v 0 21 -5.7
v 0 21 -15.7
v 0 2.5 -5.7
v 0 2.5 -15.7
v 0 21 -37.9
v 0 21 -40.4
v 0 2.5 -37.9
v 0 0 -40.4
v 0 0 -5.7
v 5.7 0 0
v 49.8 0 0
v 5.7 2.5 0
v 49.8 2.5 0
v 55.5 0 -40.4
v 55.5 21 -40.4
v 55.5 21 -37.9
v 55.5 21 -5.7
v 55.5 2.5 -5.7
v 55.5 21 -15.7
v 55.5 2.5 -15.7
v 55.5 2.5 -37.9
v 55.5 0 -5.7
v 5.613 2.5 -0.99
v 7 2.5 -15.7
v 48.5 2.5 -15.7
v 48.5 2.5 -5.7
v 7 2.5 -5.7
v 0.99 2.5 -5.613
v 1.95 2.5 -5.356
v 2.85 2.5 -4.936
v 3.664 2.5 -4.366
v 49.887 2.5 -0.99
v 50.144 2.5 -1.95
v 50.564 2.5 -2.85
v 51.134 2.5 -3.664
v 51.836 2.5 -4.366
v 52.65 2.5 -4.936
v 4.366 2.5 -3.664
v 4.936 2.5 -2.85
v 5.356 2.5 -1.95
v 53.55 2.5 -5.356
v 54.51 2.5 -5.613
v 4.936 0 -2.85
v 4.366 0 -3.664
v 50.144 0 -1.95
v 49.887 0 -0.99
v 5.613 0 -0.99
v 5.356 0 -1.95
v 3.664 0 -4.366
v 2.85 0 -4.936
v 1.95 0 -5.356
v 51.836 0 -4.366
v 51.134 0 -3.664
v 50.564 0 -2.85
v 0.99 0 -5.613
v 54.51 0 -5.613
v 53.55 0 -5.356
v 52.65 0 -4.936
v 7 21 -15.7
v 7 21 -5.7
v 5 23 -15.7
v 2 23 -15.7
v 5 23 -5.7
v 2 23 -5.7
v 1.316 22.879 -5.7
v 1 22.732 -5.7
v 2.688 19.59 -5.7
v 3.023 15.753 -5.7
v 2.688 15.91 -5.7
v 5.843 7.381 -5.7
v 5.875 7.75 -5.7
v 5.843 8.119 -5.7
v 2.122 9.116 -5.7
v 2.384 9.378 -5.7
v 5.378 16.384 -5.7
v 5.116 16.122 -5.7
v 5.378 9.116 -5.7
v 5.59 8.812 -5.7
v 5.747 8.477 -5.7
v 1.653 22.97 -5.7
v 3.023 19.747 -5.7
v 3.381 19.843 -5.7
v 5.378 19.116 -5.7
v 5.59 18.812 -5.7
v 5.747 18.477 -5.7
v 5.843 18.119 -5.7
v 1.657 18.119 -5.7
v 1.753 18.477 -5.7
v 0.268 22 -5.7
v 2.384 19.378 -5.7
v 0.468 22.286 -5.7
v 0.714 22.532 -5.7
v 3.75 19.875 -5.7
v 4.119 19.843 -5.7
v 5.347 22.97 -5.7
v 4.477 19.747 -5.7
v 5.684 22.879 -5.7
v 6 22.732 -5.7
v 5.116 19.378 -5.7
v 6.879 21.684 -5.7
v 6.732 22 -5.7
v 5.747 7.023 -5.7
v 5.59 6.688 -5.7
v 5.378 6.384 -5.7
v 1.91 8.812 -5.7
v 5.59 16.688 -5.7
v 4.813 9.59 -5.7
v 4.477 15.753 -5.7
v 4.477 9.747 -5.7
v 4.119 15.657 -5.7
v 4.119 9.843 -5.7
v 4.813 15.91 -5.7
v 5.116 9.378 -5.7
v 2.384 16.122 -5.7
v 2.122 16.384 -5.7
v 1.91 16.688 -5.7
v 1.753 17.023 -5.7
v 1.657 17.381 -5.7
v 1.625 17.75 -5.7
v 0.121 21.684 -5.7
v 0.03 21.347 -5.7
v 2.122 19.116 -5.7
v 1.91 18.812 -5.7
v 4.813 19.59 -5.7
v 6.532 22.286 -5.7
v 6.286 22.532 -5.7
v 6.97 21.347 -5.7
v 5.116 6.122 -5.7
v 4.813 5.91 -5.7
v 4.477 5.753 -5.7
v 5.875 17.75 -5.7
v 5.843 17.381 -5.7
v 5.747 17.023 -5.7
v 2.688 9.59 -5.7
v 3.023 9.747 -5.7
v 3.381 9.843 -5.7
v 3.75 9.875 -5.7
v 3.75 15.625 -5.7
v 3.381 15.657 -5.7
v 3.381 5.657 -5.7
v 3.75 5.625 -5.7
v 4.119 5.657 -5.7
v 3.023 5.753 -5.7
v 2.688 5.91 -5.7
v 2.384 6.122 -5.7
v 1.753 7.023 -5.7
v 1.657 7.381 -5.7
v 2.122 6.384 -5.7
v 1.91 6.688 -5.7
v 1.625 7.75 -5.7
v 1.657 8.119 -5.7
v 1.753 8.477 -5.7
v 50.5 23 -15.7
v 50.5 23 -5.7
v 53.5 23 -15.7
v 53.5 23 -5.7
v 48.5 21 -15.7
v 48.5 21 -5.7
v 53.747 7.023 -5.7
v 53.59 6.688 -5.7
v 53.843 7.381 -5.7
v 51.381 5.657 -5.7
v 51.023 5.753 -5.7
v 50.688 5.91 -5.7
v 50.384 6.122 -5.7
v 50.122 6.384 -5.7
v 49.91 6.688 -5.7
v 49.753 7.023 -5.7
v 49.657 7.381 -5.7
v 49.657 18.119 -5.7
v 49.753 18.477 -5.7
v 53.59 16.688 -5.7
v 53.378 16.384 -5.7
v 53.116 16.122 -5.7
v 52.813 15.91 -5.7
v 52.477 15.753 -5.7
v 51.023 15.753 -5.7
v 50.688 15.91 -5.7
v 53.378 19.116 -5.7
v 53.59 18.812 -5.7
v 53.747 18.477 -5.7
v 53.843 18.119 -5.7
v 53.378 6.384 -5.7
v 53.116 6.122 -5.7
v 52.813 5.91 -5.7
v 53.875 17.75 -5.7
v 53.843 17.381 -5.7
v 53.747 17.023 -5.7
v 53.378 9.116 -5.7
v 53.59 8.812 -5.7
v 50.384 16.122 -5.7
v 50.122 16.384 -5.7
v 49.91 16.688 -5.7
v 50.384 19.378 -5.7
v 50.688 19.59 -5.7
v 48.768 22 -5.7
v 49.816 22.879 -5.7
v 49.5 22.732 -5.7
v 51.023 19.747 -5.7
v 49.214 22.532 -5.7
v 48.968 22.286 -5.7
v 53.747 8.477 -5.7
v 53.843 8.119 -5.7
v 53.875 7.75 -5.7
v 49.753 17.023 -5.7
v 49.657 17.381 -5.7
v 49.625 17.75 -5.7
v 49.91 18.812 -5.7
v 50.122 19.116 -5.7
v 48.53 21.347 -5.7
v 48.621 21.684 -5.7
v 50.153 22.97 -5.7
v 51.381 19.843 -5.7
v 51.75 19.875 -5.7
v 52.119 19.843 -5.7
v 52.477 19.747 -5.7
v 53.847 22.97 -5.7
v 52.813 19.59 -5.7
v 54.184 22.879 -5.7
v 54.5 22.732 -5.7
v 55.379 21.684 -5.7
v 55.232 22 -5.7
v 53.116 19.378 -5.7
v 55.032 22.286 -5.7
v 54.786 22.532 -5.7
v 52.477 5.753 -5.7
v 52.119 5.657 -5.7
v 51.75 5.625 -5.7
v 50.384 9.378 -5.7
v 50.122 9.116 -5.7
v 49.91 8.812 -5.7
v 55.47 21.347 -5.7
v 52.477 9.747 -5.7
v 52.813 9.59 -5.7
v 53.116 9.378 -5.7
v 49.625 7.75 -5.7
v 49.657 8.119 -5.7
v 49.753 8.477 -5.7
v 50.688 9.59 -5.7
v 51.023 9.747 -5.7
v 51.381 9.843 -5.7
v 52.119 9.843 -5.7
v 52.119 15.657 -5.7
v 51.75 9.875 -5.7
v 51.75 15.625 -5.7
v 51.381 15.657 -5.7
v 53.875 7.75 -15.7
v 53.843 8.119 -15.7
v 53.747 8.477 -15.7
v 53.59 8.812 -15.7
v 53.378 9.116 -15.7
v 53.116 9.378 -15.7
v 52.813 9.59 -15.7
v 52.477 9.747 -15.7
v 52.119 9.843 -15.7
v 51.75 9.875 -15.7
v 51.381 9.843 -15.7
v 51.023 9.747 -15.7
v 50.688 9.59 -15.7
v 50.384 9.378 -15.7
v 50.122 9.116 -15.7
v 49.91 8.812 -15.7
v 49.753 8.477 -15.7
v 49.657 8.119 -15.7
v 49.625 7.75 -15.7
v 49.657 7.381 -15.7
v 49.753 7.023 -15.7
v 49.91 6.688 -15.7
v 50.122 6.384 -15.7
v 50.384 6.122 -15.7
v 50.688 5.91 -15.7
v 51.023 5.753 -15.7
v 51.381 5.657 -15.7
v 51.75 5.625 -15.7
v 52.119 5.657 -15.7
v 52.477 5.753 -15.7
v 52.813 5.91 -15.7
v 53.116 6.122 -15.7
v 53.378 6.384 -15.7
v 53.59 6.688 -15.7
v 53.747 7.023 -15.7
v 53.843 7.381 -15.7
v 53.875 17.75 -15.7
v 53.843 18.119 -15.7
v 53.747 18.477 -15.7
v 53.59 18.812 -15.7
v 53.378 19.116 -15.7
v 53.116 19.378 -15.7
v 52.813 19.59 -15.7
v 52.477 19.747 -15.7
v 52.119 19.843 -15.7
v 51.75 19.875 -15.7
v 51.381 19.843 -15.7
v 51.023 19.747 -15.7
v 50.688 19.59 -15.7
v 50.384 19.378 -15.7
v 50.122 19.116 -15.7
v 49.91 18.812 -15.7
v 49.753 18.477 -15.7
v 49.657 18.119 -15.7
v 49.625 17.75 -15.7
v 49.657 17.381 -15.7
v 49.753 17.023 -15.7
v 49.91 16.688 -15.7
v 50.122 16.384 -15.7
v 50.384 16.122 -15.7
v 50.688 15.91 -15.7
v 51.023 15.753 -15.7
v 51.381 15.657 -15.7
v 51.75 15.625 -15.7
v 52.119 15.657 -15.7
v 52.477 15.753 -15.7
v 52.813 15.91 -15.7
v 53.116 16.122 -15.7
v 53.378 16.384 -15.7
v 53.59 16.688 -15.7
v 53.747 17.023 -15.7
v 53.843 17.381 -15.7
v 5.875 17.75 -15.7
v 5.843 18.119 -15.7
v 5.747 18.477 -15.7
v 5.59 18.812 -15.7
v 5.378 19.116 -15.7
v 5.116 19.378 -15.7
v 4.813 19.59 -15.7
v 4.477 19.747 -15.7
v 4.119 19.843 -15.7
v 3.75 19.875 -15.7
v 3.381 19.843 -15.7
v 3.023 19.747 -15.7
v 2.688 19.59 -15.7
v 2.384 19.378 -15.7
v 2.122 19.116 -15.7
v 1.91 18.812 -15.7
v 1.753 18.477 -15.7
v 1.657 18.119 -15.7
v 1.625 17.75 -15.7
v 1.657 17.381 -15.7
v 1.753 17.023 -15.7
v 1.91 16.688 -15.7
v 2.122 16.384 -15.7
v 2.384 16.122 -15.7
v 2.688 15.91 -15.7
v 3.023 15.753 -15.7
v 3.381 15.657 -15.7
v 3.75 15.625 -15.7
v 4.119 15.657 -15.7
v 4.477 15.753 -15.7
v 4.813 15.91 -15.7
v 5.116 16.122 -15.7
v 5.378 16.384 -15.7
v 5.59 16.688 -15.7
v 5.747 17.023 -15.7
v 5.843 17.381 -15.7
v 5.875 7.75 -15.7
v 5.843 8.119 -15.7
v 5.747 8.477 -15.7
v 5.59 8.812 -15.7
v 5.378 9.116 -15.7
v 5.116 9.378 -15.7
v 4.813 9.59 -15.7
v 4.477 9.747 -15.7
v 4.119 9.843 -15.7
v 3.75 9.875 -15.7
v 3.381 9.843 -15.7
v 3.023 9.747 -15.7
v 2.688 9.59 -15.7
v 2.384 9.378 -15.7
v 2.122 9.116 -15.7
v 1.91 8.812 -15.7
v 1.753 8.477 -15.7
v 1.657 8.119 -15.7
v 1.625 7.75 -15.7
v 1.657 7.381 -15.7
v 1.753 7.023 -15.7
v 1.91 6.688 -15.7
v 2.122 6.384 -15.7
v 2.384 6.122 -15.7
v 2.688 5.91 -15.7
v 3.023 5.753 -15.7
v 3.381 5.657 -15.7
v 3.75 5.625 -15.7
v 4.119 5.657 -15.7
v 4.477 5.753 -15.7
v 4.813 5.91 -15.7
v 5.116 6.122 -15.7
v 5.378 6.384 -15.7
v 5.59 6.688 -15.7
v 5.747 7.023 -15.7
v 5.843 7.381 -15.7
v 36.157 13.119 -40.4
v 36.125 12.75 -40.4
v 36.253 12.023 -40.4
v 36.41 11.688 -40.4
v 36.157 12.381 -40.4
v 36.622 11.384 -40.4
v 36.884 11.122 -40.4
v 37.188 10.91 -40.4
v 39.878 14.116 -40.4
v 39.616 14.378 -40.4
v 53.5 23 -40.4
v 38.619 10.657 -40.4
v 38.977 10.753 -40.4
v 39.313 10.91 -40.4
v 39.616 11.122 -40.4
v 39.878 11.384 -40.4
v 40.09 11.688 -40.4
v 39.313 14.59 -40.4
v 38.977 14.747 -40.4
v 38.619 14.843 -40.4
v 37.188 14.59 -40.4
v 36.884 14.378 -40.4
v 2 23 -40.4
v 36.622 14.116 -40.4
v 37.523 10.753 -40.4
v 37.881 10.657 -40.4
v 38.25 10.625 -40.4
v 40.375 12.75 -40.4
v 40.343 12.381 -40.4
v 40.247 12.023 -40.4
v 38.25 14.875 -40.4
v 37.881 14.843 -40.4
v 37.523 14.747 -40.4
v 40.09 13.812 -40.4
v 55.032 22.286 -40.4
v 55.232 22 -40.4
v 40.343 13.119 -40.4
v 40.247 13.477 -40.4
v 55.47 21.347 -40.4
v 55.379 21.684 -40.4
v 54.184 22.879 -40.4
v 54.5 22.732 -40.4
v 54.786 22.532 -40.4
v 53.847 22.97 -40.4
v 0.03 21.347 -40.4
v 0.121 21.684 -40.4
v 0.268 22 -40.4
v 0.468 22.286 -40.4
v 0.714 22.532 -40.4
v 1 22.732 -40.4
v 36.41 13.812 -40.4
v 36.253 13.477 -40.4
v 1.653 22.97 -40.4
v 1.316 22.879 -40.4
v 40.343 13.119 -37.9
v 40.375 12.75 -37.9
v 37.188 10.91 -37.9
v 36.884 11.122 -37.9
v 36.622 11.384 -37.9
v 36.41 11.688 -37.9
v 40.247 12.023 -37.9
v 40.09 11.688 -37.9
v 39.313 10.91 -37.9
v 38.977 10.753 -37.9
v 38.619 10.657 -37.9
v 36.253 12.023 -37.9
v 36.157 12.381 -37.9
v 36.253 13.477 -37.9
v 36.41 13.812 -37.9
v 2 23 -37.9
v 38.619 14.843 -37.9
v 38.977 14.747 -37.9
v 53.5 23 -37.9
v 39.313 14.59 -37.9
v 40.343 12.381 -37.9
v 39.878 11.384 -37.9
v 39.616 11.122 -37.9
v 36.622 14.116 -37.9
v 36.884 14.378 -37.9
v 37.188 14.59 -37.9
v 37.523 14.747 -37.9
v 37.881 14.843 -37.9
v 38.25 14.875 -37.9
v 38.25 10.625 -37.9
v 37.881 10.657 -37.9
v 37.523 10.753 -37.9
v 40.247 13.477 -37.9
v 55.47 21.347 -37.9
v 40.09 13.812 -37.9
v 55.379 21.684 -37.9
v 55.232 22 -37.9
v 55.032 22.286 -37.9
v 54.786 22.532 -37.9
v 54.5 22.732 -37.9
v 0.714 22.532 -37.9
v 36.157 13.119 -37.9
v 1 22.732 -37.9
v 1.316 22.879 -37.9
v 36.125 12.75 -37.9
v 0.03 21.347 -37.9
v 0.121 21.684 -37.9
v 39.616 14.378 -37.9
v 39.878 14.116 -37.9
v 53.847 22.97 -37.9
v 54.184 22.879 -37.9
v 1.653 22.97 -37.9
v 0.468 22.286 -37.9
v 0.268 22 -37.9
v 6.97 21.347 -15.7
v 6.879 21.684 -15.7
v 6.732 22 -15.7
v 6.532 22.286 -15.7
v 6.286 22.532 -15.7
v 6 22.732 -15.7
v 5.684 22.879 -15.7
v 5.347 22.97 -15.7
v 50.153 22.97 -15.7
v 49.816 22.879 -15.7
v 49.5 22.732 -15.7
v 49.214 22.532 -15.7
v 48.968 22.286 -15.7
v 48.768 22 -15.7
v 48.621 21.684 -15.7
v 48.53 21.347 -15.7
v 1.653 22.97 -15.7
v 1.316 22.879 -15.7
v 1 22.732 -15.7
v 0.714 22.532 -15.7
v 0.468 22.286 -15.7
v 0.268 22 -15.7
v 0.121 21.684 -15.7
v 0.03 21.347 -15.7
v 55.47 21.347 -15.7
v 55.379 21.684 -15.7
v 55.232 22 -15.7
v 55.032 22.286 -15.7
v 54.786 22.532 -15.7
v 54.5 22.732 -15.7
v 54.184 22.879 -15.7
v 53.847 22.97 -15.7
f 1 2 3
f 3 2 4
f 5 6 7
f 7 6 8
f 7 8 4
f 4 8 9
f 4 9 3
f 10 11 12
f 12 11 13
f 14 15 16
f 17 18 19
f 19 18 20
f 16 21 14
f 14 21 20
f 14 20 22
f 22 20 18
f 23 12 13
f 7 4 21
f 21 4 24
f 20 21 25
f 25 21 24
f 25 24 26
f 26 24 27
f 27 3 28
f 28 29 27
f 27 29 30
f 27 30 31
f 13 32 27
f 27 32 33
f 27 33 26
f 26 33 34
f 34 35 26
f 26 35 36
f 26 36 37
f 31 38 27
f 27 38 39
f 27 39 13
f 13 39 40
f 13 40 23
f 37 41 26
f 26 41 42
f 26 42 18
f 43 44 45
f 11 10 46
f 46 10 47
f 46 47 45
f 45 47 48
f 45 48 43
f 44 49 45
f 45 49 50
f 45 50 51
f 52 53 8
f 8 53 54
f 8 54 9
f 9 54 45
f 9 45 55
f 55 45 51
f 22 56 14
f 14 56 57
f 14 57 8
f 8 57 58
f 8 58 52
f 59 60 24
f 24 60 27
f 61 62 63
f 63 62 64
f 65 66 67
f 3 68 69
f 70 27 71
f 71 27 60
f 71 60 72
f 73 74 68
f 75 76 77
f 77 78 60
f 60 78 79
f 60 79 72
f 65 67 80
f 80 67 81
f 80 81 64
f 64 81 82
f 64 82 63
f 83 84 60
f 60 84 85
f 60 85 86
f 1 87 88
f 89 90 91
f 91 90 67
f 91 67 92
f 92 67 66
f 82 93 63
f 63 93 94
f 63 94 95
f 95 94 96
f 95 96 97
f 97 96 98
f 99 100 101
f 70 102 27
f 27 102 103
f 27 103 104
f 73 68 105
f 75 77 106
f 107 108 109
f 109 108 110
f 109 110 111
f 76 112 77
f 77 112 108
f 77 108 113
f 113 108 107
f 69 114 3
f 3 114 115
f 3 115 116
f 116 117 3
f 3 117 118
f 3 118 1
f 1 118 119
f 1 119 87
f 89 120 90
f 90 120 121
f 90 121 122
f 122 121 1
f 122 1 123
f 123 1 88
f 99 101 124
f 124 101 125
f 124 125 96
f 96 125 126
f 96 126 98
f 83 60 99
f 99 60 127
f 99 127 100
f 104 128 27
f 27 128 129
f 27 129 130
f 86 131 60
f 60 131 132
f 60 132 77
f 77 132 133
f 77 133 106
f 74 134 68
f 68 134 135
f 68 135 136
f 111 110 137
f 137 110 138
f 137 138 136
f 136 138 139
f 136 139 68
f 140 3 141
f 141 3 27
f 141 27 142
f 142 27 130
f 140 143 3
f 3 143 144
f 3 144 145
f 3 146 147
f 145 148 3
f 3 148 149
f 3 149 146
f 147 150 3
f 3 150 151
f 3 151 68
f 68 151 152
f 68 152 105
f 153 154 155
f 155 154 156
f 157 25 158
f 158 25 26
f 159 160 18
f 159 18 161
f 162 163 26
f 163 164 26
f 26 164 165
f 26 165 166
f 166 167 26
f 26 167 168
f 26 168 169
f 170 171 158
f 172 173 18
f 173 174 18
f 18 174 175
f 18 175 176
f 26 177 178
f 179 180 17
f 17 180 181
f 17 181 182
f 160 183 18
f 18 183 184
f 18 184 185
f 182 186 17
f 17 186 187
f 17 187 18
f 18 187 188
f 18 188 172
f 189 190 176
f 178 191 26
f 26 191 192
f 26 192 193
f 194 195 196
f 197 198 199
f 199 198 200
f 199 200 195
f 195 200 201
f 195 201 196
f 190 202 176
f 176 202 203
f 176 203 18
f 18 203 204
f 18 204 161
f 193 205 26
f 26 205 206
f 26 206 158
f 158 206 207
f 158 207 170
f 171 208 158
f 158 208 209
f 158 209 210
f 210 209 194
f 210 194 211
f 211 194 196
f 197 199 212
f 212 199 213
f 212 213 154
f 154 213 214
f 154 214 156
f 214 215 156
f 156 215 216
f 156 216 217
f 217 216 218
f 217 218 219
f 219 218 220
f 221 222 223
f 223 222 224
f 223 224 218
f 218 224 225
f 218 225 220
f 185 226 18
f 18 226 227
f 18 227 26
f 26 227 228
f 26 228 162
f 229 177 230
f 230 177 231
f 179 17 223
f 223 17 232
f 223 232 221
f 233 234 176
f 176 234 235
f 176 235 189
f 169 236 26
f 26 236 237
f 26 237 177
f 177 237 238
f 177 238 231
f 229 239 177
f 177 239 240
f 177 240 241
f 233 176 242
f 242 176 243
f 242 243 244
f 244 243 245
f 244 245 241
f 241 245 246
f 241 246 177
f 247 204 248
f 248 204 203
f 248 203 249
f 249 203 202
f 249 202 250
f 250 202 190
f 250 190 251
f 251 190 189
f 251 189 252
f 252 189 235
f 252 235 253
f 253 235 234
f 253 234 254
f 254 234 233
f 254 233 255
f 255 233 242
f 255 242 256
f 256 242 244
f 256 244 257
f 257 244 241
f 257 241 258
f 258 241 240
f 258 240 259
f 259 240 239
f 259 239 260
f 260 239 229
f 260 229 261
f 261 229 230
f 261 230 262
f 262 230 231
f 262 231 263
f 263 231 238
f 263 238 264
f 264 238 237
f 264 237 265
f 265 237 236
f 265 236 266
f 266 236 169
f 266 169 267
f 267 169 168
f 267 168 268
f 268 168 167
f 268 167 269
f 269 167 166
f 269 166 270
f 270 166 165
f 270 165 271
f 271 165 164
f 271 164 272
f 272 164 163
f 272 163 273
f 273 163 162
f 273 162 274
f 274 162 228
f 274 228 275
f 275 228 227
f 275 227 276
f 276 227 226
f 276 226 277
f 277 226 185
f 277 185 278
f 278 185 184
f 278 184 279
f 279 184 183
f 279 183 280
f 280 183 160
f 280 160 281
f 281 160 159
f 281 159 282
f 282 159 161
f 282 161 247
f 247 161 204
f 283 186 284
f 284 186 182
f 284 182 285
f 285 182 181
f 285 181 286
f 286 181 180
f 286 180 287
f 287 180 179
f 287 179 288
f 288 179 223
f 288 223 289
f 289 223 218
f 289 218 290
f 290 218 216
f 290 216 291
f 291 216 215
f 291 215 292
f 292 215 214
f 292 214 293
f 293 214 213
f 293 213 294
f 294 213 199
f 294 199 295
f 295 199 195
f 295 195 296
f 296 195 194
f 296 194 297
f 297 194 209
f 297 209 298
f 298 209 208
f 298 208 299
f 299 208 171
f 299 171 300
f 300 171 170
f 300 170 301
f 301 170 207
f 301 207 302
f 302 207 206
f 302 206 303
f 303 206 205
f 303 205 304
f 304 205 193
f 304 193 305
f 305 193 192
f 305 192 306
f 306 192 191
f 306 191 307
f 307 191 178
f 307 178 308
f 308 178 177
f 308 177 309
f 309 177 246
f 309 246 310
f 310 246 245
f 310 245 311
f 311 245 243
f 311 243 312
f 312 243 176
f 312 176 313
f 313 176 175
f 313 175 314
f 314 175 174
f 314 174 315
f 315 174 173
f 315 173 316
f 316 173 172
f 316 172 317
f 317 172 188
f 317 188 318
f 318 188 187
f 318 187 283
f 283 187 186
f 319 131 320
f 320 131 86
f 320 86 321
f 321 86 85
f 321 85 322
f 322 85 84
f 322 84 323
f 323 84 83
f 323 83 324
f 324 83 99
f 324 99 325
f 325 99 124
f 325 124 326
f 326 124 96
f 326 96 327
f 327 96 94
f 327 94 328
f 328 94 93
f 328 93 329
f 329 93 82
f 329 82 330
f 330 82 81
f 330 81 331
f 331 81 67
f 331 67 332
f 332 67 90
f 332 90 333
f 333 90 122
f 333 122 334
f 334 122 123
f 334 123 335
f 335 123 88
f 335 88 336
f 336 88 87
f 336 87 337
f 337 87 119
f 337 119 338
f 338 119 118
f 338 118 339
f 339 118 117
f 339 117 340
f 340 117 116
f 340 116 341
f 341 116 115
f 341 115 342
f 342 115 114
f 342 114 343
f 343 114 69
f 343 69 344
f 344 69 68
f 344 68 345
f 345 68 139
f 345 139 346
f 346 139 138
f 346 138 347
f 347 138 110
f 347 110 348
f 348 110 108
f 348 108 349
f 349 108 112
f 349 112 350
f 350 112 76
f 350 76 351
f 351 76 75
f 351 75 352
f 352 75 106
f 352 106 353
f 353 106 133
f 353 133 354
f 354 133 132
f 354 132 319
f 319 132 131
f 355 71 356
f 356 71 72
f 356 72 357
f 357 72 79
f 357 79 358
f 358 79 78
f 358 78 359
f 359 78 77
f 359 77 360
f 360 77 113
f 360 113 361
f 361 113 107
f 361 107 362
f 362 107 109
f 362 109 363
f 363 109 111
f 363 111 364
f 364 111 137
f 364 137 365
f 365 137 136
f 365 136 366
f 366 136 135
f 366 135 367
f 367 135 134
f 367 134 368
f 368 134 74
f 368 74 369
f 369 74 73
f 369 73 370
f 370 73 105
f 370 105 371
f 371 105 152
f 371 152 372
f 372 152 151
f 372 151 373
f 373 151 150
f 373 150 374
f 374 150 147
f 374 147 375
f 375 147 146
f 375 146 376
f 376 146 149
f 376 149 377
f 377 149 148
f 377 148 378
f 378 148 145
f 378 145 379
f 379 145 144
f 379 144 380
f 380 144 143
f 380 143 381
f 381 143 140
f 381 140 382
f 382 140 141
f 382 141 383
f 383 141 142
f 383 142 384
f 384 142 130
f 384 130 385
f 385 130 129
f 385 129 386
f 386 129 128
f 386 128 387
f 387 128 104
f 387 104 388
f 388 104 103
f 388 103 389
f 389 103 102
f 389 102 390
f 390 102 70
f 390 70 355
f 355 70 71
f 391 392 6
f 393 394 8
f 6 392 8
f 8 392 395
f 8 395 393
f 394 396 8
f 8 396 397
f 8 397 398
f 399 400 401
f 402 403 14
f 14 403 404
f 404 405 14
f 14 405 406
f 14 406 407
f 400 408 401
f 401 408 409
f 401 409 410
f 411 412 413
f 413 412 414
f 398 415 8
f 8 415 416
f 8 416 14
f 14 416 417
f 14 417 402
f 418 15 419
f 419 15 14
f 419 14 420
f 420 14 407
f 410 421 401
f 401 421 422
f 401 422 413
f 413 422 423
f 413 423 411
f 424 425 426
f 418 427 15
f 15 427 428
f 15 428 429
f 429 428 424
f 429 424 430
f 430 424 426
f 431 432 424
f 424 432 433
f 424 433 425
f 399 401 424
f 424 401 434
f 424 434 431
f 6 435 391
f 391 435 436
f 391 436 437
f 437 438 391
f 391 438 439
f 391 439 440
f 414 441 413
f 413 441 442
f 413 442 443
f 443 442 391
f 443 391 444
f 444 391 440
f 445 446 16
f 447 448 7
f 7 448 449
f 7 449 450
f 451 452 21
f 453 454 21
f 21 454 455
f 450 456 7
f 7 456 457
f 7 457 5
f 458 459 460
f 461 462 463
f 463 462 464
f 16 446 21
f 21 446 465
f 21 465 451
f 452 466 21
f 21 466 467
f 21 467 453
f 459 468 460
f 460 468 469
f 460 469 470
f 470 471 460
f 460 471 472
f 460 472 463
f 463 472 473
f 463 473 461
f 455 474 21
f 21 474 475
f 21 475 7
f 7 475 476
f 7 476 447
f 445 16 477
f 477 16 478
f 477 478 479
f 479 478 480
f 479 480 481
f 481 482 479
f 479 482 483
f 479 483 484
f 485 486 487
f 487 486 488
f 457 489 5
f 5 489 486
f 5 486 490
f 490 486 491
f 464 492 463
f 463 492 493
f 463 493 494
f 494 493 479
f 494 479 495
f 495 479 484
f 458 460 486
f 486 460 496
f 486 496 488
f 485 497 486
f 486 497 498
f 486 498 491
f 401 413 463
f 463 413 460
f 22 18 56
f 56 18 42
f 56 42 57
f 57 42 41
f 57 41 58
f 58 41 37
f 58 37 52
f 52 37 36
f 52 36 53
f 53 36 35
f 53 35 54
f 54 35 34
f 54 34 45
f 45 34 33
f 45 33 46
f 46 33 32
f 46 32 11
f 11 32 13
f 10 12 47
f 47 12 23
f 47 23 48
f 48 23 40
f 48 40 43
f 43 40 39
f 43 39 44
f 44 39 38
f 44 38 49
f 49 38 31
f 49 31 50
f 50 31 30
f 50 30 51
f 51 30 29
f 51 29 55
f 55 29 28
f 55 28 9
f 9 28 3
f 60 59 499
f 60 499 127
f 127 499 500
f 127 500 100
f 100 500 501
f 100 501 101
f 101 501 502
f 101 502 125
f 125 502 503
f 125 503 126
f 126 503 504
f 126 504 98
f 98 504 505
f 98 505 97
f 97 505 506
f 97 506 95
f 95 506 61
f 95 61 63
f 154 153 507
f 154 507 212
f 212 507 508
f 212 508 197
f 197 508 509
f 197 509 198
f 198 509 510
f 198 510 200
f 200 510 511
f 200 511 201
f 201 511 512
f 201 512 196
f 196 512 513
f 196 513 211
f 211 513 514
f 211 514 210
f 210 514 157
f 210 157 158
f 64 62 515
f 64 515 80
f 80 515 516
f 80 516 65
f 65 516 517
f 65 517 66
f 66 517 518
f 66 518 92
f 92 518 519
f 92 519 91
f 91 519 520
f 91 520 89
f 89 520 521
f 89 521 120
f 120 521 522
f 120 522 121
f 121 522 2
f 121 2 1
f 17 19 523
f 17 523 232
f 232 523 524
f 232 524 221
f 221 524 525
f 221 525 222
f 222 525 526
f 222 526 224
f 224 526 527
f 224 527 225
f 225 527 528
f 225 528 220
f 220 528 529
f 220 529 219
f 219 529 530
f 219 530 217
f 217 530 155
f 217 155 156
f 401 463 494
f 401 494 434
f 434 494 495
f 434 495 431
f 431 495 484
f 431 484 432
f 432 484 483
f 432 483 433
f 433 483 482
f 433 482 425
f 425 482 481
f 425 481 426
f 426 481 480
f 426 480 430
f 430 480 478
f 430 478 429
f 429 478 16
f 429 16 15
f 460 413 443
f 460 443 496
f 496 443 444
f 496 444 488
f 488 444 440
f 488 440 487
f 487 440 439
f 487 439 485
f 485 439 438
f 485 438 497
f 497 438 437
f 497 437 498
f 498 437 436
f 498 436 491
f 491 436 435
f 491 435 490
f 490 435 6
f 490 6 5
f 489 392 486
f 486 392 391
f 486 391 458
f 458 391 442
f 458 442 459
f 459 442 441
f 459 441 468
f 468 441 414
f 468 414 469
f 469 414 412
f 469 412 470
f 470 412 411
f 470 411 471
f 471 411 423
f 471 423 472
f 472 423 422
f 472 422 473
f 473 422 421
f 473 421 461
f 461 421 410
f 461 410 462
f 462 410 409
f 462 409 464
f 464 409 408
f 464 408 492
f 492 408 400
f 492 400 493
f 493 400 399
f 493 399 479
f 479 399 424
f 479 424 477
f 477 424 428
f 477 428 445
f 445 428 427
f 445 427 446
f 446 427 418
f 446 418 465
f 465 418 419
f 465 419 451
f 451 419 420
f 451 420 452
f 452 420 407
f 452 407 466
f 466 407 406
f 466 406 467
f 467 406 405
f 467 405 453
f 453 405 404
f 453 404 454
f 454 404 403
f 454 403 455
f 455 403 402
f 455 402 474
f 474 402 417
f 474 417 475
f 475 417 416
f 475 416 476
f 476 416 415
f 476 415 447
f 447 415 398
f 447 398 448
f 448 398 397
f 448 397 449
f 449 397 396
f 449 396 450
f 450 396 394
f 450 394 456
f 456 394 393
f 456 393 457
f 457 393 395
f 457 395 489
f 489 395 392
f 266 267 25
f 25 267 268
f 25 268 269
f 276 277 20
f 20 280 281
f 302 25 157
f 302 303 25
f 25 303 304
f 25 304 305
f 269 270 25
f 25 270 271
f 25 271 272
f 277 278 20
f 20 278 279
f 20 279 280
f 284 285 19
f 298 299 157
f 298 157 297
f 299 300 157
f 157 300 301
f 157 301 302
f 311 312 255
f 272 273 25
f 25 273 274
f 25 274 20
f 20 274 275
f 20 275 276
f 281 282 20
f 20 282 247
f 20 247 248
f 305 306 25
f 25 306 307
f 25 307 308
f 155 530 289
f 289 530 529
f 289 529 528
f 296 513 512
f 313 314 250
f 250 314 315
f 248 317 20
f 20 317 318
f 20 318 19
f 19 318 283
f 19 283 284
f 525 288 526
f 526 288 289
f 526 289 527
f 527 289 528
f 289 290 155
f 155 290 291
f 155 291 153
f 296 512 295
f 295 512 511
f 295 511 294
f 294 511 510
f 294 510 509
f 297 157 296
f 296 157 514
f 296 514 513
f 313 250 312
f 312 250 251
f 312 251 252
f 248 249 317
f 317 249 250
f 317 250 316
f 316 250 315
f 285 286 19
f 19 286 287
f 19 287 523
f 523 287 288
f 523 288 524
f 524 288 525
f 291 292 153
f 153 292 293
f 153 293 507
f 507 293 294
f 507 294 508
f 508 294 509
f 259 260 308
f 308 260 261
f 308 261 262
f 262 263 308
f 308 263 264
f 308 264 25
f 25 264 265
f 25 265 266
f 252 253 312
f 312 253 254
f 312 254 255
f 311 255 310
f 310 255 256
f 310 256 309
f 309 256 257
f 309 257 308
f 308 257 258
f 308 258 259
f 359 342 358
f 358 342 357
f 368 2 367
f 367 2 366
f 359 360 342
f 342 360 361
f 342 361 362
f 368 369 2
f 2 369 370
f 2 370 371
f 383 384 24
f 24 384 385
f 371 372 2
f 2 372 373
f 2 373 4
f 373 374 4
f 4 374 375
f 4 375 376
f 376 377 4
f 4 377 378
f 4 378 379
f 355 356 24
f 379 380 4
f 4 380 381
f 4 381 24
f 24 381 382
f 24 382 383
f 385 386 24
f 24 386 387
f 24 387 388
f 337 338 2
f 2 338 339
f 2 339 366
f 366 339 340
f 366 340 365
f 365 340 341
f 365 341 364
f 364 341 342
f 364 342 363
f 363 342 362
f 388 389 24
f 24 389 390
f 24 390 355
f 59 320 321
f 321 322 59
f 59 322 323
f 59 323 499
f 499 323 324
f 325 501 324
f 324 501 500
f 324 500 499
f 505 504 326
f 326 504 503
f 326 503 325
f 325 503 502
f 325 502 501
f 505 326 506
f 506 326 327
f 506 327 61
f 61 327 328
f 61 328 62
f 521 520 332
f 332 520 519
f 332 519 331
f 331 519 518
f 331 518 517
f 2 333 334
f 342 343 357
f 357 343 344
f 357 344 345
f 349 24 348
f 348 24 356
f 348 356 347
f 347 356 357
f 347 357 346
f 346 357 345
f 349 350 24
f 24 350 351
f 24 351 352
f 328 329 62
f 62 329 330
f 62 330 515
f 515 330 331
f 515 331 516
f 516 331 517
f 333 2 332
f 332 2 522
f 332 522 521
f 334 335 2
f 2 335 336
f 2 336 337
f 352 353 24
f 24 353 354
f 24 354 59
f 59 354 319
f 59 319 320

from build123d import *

# Parameters (mm, degrees)
SKETCH1_W                   = 55.5
SKETCH1_H                   = 37.9
BRACKETBASE_DEPTH           = 2.5
SKETCH2_W                   = 7
SKETCH2_H                   = 20.5
SERVOMOUNTINGHOLETABS_DEPTH = 2.5
SKETCH3_R                   = 2.125
SERVOMOUNTINGHOLES_DEPTH    = 2.5
SKETCH4_W                   = 55.5
SKETCH4_H                   = 2.5
BASEWALL_DEPTH              = 23
SKETCH6_R                   = 5.7
BASETRIM_DEPTH              = 2.5
FILLET1_R                   = 2
SKETCH7_R                   = 2.125
M4MOUNTINGHOLE_DEPTH        = 10
SKETCH8_R                   = 2.125
CUT_EXTRUDE1_DEPTH          = 10
SKETCH9_R                   = 2.125
BOSS_EXTRUDE1_DEPTH         = 2.5
SKETCH10_R                  = 2.125
BOSS_EXTRUDE2_DEPTH         = 7.5


with BuildPart() as part:
    # Sketch1 → bracketBase (new body)
    with BuildSketch(Plane(origin=(0, 0, 0), x_dir=(1, 0, 0), z_dir=(0, 1, 0))):
        with Locations((27.75, 18.95)):
            Rectangle(SKETCH1_W, SKETCH1_H)
    extrude(amount=BRACKETBASE_DEPTH)

    # Sketch2 → servoMountingHoleTabs (add)
    with BuildSketch(Plane.XY.offset(-8.2)):
        with Locations((3.5, 12.75)):
            Rectangle(SKETCH2_W, SKETCH2_H)
        with Locations((52, 12.75)):
            Rectangle(SKETCH2_W, SKETCH2_H)
    extrude(amount=SERVOMOUNTINGHOLETABS_DEPTH)

    # Sketch3 → servoMountingHoles (cut)
    with BuildSketch(Plane.XY.offset(-5.7)):
        with Locations((3.75, 17.75)):
            Circle(SKETCH3_R)
        with Locations(Location((3.75, 7.75, 0), (0, 0, 180))):
            Circle(SKETCH3_R)
        with Locations((51.75, 7.75)):
            Circle(SKETCH3_R)
        with Locations(Location((51.75, 17.75, 0), (0, 0, 180))):
            Circle(SKETCH3_R)
    extrude(amount=-SERVOMOUNTINGHOLES_DEPTH, mode=Mode.SUBTRACT)

    # Sketch4 → baseWall (add)
    with BuildSketch(Plane(origin=(0, 0, 0), x_dir=(1, 0, 0), z_dir=(0, 1, 0))):
        with Locations((27.75, 39.15)):
            Rectangle(SKETCH4_W, SKETCH4_H)
    extrude(amount=BASEWALL_DEPTH)

    # Sketch6 → baseTrim (cut)
    with BuildSketch(Plane(origin=(0, 2.5, 0), x_dir=(1, 0, 0), z_dir=(0, 1, 0))):
        Circle(SKETCH6_R)
        with Locations((55.5, 0)):
            Circle(SKETCH6_R)
    extrude(amount=-BASETRIM_DEPTH, mode=Mode.SUBTRACT)

    # Fillet1
    fillet1_edges = [part.edges().sort_by_distance(p)[0] for p in [
        (0, 23, -6.95),
        (7, 23, -6.95),
        (55.5, 23, -6.95),
        (48.5, 23, -6.95),
        (55.5, 23, -39.15),
        (0, 23, -39.15),
    ]]
    fillet(fillet1_edges, radius=FILLET1_R)

    # Sketch7 → M4mountingHole (cut)
    with BuildSketch(Plane(origin=(0, 0, -40.4), x_dir=(-1, 0, 0), z_dir=(0, 0, -1))):
        with Locations((-17.25, 12.75)):
            Circle(SKETCH7_R)
    extrude(amount=-M4MOUNTINGHOLE_DEPTH, mode=Mode.SUBTRACT)

    # Sketch8 → Cut-Extrude1 (cut)
    with BuildSketch(Plane(origin=(0, 0, -40.4), x_dir=(-1, 0, 0), z_dir=(0, 0, -1))):
        with Locations((-38.25, 12.75)):
            Circle(SKETCH8_R)
    extrude(amount=-CUT_EXTRUDE1_DEPTH, mode=Mode.SUBTRACT)

    # Sketch9 → Boss-Extrude1 (add)
    with BuildSketch(Plane(origin=(0, 0, -40.4), x_dir=(-1, 0, 0), z_dir=(0, 0, -1))):
        with Locations((-17.25, 12.75)):
            Circle(SKETCH9_R)
    extrude(amount=-BOSS_EXTRUDE1_DEPTH)

    # Sketch10 → Boss-Extrude2 (add)
    # profile 1 of 2: a face of its own
    with BuildSketch(Plane(origin=(0, 0, -8.2), x_dir=(-1, 0, 0), z_dir=(0, 0, -1))):
        with BuildLine():
            Line((-48.5, 2.5), (-48.5, 21))
            ThreePointArc((-48.5, 21), (-49.085786438, 22.414213562), (-50.5, 23))
            Line((-50.5, 23), (-53.5, 23))
            ThreePointArc((-53.5, 23), (-54.914213562, 22.414213562), (-55.5, 21))
            Line((-55.5, 21), (-55.5, 2.5))
            Line((-55.5, 2.5), (-48.5, 2.5))
        make_face()
        with Locations((-51.75, 17.75)):
            Circle(SKETCH10_R, mode=Mode.SUBTRACT)
        with Locations(Location((-51.75, 7.75, 0), (0, 0, 180))):
            Circle(SKETCH10_R, mode=Mode.SUBTRACT)
    # profile 2 of 2: a face of its own
    with BuildSketch(Plane(origin=(0, 0, -8.2), x_dir=(-1, 0, 0), z_dir=(0, 0, -1))):
        with BuildLine():
            Line((-2, 23), (-5, 23))
            ThreePointArc((-5, 23), (-6.414213562, 22.414213562), (-7, 21))
            Line((-7, 21), (-7, 2.5))
            Line((-7, 2.5), (0, 2.5))
            Line((0, 2.5), (0, 21))
            ThreePointArc((0, 21), (-0.585786438, 22.414213562), (-2, 23))
        make_face()
        with Locations(Location((-3.75, 17.75, 0), (0, 0, 180))):
            Circle(SKETCH10_R, mode=Mode.SUBTRACT)
        with Locations((-3.75, 7.75)):
            Circle(SKETCH10_R, mode=Mode.SUBTRACT)
    extrude(amount=BOSS_EXTRUDE2_DEPTH)


solid = part.part
